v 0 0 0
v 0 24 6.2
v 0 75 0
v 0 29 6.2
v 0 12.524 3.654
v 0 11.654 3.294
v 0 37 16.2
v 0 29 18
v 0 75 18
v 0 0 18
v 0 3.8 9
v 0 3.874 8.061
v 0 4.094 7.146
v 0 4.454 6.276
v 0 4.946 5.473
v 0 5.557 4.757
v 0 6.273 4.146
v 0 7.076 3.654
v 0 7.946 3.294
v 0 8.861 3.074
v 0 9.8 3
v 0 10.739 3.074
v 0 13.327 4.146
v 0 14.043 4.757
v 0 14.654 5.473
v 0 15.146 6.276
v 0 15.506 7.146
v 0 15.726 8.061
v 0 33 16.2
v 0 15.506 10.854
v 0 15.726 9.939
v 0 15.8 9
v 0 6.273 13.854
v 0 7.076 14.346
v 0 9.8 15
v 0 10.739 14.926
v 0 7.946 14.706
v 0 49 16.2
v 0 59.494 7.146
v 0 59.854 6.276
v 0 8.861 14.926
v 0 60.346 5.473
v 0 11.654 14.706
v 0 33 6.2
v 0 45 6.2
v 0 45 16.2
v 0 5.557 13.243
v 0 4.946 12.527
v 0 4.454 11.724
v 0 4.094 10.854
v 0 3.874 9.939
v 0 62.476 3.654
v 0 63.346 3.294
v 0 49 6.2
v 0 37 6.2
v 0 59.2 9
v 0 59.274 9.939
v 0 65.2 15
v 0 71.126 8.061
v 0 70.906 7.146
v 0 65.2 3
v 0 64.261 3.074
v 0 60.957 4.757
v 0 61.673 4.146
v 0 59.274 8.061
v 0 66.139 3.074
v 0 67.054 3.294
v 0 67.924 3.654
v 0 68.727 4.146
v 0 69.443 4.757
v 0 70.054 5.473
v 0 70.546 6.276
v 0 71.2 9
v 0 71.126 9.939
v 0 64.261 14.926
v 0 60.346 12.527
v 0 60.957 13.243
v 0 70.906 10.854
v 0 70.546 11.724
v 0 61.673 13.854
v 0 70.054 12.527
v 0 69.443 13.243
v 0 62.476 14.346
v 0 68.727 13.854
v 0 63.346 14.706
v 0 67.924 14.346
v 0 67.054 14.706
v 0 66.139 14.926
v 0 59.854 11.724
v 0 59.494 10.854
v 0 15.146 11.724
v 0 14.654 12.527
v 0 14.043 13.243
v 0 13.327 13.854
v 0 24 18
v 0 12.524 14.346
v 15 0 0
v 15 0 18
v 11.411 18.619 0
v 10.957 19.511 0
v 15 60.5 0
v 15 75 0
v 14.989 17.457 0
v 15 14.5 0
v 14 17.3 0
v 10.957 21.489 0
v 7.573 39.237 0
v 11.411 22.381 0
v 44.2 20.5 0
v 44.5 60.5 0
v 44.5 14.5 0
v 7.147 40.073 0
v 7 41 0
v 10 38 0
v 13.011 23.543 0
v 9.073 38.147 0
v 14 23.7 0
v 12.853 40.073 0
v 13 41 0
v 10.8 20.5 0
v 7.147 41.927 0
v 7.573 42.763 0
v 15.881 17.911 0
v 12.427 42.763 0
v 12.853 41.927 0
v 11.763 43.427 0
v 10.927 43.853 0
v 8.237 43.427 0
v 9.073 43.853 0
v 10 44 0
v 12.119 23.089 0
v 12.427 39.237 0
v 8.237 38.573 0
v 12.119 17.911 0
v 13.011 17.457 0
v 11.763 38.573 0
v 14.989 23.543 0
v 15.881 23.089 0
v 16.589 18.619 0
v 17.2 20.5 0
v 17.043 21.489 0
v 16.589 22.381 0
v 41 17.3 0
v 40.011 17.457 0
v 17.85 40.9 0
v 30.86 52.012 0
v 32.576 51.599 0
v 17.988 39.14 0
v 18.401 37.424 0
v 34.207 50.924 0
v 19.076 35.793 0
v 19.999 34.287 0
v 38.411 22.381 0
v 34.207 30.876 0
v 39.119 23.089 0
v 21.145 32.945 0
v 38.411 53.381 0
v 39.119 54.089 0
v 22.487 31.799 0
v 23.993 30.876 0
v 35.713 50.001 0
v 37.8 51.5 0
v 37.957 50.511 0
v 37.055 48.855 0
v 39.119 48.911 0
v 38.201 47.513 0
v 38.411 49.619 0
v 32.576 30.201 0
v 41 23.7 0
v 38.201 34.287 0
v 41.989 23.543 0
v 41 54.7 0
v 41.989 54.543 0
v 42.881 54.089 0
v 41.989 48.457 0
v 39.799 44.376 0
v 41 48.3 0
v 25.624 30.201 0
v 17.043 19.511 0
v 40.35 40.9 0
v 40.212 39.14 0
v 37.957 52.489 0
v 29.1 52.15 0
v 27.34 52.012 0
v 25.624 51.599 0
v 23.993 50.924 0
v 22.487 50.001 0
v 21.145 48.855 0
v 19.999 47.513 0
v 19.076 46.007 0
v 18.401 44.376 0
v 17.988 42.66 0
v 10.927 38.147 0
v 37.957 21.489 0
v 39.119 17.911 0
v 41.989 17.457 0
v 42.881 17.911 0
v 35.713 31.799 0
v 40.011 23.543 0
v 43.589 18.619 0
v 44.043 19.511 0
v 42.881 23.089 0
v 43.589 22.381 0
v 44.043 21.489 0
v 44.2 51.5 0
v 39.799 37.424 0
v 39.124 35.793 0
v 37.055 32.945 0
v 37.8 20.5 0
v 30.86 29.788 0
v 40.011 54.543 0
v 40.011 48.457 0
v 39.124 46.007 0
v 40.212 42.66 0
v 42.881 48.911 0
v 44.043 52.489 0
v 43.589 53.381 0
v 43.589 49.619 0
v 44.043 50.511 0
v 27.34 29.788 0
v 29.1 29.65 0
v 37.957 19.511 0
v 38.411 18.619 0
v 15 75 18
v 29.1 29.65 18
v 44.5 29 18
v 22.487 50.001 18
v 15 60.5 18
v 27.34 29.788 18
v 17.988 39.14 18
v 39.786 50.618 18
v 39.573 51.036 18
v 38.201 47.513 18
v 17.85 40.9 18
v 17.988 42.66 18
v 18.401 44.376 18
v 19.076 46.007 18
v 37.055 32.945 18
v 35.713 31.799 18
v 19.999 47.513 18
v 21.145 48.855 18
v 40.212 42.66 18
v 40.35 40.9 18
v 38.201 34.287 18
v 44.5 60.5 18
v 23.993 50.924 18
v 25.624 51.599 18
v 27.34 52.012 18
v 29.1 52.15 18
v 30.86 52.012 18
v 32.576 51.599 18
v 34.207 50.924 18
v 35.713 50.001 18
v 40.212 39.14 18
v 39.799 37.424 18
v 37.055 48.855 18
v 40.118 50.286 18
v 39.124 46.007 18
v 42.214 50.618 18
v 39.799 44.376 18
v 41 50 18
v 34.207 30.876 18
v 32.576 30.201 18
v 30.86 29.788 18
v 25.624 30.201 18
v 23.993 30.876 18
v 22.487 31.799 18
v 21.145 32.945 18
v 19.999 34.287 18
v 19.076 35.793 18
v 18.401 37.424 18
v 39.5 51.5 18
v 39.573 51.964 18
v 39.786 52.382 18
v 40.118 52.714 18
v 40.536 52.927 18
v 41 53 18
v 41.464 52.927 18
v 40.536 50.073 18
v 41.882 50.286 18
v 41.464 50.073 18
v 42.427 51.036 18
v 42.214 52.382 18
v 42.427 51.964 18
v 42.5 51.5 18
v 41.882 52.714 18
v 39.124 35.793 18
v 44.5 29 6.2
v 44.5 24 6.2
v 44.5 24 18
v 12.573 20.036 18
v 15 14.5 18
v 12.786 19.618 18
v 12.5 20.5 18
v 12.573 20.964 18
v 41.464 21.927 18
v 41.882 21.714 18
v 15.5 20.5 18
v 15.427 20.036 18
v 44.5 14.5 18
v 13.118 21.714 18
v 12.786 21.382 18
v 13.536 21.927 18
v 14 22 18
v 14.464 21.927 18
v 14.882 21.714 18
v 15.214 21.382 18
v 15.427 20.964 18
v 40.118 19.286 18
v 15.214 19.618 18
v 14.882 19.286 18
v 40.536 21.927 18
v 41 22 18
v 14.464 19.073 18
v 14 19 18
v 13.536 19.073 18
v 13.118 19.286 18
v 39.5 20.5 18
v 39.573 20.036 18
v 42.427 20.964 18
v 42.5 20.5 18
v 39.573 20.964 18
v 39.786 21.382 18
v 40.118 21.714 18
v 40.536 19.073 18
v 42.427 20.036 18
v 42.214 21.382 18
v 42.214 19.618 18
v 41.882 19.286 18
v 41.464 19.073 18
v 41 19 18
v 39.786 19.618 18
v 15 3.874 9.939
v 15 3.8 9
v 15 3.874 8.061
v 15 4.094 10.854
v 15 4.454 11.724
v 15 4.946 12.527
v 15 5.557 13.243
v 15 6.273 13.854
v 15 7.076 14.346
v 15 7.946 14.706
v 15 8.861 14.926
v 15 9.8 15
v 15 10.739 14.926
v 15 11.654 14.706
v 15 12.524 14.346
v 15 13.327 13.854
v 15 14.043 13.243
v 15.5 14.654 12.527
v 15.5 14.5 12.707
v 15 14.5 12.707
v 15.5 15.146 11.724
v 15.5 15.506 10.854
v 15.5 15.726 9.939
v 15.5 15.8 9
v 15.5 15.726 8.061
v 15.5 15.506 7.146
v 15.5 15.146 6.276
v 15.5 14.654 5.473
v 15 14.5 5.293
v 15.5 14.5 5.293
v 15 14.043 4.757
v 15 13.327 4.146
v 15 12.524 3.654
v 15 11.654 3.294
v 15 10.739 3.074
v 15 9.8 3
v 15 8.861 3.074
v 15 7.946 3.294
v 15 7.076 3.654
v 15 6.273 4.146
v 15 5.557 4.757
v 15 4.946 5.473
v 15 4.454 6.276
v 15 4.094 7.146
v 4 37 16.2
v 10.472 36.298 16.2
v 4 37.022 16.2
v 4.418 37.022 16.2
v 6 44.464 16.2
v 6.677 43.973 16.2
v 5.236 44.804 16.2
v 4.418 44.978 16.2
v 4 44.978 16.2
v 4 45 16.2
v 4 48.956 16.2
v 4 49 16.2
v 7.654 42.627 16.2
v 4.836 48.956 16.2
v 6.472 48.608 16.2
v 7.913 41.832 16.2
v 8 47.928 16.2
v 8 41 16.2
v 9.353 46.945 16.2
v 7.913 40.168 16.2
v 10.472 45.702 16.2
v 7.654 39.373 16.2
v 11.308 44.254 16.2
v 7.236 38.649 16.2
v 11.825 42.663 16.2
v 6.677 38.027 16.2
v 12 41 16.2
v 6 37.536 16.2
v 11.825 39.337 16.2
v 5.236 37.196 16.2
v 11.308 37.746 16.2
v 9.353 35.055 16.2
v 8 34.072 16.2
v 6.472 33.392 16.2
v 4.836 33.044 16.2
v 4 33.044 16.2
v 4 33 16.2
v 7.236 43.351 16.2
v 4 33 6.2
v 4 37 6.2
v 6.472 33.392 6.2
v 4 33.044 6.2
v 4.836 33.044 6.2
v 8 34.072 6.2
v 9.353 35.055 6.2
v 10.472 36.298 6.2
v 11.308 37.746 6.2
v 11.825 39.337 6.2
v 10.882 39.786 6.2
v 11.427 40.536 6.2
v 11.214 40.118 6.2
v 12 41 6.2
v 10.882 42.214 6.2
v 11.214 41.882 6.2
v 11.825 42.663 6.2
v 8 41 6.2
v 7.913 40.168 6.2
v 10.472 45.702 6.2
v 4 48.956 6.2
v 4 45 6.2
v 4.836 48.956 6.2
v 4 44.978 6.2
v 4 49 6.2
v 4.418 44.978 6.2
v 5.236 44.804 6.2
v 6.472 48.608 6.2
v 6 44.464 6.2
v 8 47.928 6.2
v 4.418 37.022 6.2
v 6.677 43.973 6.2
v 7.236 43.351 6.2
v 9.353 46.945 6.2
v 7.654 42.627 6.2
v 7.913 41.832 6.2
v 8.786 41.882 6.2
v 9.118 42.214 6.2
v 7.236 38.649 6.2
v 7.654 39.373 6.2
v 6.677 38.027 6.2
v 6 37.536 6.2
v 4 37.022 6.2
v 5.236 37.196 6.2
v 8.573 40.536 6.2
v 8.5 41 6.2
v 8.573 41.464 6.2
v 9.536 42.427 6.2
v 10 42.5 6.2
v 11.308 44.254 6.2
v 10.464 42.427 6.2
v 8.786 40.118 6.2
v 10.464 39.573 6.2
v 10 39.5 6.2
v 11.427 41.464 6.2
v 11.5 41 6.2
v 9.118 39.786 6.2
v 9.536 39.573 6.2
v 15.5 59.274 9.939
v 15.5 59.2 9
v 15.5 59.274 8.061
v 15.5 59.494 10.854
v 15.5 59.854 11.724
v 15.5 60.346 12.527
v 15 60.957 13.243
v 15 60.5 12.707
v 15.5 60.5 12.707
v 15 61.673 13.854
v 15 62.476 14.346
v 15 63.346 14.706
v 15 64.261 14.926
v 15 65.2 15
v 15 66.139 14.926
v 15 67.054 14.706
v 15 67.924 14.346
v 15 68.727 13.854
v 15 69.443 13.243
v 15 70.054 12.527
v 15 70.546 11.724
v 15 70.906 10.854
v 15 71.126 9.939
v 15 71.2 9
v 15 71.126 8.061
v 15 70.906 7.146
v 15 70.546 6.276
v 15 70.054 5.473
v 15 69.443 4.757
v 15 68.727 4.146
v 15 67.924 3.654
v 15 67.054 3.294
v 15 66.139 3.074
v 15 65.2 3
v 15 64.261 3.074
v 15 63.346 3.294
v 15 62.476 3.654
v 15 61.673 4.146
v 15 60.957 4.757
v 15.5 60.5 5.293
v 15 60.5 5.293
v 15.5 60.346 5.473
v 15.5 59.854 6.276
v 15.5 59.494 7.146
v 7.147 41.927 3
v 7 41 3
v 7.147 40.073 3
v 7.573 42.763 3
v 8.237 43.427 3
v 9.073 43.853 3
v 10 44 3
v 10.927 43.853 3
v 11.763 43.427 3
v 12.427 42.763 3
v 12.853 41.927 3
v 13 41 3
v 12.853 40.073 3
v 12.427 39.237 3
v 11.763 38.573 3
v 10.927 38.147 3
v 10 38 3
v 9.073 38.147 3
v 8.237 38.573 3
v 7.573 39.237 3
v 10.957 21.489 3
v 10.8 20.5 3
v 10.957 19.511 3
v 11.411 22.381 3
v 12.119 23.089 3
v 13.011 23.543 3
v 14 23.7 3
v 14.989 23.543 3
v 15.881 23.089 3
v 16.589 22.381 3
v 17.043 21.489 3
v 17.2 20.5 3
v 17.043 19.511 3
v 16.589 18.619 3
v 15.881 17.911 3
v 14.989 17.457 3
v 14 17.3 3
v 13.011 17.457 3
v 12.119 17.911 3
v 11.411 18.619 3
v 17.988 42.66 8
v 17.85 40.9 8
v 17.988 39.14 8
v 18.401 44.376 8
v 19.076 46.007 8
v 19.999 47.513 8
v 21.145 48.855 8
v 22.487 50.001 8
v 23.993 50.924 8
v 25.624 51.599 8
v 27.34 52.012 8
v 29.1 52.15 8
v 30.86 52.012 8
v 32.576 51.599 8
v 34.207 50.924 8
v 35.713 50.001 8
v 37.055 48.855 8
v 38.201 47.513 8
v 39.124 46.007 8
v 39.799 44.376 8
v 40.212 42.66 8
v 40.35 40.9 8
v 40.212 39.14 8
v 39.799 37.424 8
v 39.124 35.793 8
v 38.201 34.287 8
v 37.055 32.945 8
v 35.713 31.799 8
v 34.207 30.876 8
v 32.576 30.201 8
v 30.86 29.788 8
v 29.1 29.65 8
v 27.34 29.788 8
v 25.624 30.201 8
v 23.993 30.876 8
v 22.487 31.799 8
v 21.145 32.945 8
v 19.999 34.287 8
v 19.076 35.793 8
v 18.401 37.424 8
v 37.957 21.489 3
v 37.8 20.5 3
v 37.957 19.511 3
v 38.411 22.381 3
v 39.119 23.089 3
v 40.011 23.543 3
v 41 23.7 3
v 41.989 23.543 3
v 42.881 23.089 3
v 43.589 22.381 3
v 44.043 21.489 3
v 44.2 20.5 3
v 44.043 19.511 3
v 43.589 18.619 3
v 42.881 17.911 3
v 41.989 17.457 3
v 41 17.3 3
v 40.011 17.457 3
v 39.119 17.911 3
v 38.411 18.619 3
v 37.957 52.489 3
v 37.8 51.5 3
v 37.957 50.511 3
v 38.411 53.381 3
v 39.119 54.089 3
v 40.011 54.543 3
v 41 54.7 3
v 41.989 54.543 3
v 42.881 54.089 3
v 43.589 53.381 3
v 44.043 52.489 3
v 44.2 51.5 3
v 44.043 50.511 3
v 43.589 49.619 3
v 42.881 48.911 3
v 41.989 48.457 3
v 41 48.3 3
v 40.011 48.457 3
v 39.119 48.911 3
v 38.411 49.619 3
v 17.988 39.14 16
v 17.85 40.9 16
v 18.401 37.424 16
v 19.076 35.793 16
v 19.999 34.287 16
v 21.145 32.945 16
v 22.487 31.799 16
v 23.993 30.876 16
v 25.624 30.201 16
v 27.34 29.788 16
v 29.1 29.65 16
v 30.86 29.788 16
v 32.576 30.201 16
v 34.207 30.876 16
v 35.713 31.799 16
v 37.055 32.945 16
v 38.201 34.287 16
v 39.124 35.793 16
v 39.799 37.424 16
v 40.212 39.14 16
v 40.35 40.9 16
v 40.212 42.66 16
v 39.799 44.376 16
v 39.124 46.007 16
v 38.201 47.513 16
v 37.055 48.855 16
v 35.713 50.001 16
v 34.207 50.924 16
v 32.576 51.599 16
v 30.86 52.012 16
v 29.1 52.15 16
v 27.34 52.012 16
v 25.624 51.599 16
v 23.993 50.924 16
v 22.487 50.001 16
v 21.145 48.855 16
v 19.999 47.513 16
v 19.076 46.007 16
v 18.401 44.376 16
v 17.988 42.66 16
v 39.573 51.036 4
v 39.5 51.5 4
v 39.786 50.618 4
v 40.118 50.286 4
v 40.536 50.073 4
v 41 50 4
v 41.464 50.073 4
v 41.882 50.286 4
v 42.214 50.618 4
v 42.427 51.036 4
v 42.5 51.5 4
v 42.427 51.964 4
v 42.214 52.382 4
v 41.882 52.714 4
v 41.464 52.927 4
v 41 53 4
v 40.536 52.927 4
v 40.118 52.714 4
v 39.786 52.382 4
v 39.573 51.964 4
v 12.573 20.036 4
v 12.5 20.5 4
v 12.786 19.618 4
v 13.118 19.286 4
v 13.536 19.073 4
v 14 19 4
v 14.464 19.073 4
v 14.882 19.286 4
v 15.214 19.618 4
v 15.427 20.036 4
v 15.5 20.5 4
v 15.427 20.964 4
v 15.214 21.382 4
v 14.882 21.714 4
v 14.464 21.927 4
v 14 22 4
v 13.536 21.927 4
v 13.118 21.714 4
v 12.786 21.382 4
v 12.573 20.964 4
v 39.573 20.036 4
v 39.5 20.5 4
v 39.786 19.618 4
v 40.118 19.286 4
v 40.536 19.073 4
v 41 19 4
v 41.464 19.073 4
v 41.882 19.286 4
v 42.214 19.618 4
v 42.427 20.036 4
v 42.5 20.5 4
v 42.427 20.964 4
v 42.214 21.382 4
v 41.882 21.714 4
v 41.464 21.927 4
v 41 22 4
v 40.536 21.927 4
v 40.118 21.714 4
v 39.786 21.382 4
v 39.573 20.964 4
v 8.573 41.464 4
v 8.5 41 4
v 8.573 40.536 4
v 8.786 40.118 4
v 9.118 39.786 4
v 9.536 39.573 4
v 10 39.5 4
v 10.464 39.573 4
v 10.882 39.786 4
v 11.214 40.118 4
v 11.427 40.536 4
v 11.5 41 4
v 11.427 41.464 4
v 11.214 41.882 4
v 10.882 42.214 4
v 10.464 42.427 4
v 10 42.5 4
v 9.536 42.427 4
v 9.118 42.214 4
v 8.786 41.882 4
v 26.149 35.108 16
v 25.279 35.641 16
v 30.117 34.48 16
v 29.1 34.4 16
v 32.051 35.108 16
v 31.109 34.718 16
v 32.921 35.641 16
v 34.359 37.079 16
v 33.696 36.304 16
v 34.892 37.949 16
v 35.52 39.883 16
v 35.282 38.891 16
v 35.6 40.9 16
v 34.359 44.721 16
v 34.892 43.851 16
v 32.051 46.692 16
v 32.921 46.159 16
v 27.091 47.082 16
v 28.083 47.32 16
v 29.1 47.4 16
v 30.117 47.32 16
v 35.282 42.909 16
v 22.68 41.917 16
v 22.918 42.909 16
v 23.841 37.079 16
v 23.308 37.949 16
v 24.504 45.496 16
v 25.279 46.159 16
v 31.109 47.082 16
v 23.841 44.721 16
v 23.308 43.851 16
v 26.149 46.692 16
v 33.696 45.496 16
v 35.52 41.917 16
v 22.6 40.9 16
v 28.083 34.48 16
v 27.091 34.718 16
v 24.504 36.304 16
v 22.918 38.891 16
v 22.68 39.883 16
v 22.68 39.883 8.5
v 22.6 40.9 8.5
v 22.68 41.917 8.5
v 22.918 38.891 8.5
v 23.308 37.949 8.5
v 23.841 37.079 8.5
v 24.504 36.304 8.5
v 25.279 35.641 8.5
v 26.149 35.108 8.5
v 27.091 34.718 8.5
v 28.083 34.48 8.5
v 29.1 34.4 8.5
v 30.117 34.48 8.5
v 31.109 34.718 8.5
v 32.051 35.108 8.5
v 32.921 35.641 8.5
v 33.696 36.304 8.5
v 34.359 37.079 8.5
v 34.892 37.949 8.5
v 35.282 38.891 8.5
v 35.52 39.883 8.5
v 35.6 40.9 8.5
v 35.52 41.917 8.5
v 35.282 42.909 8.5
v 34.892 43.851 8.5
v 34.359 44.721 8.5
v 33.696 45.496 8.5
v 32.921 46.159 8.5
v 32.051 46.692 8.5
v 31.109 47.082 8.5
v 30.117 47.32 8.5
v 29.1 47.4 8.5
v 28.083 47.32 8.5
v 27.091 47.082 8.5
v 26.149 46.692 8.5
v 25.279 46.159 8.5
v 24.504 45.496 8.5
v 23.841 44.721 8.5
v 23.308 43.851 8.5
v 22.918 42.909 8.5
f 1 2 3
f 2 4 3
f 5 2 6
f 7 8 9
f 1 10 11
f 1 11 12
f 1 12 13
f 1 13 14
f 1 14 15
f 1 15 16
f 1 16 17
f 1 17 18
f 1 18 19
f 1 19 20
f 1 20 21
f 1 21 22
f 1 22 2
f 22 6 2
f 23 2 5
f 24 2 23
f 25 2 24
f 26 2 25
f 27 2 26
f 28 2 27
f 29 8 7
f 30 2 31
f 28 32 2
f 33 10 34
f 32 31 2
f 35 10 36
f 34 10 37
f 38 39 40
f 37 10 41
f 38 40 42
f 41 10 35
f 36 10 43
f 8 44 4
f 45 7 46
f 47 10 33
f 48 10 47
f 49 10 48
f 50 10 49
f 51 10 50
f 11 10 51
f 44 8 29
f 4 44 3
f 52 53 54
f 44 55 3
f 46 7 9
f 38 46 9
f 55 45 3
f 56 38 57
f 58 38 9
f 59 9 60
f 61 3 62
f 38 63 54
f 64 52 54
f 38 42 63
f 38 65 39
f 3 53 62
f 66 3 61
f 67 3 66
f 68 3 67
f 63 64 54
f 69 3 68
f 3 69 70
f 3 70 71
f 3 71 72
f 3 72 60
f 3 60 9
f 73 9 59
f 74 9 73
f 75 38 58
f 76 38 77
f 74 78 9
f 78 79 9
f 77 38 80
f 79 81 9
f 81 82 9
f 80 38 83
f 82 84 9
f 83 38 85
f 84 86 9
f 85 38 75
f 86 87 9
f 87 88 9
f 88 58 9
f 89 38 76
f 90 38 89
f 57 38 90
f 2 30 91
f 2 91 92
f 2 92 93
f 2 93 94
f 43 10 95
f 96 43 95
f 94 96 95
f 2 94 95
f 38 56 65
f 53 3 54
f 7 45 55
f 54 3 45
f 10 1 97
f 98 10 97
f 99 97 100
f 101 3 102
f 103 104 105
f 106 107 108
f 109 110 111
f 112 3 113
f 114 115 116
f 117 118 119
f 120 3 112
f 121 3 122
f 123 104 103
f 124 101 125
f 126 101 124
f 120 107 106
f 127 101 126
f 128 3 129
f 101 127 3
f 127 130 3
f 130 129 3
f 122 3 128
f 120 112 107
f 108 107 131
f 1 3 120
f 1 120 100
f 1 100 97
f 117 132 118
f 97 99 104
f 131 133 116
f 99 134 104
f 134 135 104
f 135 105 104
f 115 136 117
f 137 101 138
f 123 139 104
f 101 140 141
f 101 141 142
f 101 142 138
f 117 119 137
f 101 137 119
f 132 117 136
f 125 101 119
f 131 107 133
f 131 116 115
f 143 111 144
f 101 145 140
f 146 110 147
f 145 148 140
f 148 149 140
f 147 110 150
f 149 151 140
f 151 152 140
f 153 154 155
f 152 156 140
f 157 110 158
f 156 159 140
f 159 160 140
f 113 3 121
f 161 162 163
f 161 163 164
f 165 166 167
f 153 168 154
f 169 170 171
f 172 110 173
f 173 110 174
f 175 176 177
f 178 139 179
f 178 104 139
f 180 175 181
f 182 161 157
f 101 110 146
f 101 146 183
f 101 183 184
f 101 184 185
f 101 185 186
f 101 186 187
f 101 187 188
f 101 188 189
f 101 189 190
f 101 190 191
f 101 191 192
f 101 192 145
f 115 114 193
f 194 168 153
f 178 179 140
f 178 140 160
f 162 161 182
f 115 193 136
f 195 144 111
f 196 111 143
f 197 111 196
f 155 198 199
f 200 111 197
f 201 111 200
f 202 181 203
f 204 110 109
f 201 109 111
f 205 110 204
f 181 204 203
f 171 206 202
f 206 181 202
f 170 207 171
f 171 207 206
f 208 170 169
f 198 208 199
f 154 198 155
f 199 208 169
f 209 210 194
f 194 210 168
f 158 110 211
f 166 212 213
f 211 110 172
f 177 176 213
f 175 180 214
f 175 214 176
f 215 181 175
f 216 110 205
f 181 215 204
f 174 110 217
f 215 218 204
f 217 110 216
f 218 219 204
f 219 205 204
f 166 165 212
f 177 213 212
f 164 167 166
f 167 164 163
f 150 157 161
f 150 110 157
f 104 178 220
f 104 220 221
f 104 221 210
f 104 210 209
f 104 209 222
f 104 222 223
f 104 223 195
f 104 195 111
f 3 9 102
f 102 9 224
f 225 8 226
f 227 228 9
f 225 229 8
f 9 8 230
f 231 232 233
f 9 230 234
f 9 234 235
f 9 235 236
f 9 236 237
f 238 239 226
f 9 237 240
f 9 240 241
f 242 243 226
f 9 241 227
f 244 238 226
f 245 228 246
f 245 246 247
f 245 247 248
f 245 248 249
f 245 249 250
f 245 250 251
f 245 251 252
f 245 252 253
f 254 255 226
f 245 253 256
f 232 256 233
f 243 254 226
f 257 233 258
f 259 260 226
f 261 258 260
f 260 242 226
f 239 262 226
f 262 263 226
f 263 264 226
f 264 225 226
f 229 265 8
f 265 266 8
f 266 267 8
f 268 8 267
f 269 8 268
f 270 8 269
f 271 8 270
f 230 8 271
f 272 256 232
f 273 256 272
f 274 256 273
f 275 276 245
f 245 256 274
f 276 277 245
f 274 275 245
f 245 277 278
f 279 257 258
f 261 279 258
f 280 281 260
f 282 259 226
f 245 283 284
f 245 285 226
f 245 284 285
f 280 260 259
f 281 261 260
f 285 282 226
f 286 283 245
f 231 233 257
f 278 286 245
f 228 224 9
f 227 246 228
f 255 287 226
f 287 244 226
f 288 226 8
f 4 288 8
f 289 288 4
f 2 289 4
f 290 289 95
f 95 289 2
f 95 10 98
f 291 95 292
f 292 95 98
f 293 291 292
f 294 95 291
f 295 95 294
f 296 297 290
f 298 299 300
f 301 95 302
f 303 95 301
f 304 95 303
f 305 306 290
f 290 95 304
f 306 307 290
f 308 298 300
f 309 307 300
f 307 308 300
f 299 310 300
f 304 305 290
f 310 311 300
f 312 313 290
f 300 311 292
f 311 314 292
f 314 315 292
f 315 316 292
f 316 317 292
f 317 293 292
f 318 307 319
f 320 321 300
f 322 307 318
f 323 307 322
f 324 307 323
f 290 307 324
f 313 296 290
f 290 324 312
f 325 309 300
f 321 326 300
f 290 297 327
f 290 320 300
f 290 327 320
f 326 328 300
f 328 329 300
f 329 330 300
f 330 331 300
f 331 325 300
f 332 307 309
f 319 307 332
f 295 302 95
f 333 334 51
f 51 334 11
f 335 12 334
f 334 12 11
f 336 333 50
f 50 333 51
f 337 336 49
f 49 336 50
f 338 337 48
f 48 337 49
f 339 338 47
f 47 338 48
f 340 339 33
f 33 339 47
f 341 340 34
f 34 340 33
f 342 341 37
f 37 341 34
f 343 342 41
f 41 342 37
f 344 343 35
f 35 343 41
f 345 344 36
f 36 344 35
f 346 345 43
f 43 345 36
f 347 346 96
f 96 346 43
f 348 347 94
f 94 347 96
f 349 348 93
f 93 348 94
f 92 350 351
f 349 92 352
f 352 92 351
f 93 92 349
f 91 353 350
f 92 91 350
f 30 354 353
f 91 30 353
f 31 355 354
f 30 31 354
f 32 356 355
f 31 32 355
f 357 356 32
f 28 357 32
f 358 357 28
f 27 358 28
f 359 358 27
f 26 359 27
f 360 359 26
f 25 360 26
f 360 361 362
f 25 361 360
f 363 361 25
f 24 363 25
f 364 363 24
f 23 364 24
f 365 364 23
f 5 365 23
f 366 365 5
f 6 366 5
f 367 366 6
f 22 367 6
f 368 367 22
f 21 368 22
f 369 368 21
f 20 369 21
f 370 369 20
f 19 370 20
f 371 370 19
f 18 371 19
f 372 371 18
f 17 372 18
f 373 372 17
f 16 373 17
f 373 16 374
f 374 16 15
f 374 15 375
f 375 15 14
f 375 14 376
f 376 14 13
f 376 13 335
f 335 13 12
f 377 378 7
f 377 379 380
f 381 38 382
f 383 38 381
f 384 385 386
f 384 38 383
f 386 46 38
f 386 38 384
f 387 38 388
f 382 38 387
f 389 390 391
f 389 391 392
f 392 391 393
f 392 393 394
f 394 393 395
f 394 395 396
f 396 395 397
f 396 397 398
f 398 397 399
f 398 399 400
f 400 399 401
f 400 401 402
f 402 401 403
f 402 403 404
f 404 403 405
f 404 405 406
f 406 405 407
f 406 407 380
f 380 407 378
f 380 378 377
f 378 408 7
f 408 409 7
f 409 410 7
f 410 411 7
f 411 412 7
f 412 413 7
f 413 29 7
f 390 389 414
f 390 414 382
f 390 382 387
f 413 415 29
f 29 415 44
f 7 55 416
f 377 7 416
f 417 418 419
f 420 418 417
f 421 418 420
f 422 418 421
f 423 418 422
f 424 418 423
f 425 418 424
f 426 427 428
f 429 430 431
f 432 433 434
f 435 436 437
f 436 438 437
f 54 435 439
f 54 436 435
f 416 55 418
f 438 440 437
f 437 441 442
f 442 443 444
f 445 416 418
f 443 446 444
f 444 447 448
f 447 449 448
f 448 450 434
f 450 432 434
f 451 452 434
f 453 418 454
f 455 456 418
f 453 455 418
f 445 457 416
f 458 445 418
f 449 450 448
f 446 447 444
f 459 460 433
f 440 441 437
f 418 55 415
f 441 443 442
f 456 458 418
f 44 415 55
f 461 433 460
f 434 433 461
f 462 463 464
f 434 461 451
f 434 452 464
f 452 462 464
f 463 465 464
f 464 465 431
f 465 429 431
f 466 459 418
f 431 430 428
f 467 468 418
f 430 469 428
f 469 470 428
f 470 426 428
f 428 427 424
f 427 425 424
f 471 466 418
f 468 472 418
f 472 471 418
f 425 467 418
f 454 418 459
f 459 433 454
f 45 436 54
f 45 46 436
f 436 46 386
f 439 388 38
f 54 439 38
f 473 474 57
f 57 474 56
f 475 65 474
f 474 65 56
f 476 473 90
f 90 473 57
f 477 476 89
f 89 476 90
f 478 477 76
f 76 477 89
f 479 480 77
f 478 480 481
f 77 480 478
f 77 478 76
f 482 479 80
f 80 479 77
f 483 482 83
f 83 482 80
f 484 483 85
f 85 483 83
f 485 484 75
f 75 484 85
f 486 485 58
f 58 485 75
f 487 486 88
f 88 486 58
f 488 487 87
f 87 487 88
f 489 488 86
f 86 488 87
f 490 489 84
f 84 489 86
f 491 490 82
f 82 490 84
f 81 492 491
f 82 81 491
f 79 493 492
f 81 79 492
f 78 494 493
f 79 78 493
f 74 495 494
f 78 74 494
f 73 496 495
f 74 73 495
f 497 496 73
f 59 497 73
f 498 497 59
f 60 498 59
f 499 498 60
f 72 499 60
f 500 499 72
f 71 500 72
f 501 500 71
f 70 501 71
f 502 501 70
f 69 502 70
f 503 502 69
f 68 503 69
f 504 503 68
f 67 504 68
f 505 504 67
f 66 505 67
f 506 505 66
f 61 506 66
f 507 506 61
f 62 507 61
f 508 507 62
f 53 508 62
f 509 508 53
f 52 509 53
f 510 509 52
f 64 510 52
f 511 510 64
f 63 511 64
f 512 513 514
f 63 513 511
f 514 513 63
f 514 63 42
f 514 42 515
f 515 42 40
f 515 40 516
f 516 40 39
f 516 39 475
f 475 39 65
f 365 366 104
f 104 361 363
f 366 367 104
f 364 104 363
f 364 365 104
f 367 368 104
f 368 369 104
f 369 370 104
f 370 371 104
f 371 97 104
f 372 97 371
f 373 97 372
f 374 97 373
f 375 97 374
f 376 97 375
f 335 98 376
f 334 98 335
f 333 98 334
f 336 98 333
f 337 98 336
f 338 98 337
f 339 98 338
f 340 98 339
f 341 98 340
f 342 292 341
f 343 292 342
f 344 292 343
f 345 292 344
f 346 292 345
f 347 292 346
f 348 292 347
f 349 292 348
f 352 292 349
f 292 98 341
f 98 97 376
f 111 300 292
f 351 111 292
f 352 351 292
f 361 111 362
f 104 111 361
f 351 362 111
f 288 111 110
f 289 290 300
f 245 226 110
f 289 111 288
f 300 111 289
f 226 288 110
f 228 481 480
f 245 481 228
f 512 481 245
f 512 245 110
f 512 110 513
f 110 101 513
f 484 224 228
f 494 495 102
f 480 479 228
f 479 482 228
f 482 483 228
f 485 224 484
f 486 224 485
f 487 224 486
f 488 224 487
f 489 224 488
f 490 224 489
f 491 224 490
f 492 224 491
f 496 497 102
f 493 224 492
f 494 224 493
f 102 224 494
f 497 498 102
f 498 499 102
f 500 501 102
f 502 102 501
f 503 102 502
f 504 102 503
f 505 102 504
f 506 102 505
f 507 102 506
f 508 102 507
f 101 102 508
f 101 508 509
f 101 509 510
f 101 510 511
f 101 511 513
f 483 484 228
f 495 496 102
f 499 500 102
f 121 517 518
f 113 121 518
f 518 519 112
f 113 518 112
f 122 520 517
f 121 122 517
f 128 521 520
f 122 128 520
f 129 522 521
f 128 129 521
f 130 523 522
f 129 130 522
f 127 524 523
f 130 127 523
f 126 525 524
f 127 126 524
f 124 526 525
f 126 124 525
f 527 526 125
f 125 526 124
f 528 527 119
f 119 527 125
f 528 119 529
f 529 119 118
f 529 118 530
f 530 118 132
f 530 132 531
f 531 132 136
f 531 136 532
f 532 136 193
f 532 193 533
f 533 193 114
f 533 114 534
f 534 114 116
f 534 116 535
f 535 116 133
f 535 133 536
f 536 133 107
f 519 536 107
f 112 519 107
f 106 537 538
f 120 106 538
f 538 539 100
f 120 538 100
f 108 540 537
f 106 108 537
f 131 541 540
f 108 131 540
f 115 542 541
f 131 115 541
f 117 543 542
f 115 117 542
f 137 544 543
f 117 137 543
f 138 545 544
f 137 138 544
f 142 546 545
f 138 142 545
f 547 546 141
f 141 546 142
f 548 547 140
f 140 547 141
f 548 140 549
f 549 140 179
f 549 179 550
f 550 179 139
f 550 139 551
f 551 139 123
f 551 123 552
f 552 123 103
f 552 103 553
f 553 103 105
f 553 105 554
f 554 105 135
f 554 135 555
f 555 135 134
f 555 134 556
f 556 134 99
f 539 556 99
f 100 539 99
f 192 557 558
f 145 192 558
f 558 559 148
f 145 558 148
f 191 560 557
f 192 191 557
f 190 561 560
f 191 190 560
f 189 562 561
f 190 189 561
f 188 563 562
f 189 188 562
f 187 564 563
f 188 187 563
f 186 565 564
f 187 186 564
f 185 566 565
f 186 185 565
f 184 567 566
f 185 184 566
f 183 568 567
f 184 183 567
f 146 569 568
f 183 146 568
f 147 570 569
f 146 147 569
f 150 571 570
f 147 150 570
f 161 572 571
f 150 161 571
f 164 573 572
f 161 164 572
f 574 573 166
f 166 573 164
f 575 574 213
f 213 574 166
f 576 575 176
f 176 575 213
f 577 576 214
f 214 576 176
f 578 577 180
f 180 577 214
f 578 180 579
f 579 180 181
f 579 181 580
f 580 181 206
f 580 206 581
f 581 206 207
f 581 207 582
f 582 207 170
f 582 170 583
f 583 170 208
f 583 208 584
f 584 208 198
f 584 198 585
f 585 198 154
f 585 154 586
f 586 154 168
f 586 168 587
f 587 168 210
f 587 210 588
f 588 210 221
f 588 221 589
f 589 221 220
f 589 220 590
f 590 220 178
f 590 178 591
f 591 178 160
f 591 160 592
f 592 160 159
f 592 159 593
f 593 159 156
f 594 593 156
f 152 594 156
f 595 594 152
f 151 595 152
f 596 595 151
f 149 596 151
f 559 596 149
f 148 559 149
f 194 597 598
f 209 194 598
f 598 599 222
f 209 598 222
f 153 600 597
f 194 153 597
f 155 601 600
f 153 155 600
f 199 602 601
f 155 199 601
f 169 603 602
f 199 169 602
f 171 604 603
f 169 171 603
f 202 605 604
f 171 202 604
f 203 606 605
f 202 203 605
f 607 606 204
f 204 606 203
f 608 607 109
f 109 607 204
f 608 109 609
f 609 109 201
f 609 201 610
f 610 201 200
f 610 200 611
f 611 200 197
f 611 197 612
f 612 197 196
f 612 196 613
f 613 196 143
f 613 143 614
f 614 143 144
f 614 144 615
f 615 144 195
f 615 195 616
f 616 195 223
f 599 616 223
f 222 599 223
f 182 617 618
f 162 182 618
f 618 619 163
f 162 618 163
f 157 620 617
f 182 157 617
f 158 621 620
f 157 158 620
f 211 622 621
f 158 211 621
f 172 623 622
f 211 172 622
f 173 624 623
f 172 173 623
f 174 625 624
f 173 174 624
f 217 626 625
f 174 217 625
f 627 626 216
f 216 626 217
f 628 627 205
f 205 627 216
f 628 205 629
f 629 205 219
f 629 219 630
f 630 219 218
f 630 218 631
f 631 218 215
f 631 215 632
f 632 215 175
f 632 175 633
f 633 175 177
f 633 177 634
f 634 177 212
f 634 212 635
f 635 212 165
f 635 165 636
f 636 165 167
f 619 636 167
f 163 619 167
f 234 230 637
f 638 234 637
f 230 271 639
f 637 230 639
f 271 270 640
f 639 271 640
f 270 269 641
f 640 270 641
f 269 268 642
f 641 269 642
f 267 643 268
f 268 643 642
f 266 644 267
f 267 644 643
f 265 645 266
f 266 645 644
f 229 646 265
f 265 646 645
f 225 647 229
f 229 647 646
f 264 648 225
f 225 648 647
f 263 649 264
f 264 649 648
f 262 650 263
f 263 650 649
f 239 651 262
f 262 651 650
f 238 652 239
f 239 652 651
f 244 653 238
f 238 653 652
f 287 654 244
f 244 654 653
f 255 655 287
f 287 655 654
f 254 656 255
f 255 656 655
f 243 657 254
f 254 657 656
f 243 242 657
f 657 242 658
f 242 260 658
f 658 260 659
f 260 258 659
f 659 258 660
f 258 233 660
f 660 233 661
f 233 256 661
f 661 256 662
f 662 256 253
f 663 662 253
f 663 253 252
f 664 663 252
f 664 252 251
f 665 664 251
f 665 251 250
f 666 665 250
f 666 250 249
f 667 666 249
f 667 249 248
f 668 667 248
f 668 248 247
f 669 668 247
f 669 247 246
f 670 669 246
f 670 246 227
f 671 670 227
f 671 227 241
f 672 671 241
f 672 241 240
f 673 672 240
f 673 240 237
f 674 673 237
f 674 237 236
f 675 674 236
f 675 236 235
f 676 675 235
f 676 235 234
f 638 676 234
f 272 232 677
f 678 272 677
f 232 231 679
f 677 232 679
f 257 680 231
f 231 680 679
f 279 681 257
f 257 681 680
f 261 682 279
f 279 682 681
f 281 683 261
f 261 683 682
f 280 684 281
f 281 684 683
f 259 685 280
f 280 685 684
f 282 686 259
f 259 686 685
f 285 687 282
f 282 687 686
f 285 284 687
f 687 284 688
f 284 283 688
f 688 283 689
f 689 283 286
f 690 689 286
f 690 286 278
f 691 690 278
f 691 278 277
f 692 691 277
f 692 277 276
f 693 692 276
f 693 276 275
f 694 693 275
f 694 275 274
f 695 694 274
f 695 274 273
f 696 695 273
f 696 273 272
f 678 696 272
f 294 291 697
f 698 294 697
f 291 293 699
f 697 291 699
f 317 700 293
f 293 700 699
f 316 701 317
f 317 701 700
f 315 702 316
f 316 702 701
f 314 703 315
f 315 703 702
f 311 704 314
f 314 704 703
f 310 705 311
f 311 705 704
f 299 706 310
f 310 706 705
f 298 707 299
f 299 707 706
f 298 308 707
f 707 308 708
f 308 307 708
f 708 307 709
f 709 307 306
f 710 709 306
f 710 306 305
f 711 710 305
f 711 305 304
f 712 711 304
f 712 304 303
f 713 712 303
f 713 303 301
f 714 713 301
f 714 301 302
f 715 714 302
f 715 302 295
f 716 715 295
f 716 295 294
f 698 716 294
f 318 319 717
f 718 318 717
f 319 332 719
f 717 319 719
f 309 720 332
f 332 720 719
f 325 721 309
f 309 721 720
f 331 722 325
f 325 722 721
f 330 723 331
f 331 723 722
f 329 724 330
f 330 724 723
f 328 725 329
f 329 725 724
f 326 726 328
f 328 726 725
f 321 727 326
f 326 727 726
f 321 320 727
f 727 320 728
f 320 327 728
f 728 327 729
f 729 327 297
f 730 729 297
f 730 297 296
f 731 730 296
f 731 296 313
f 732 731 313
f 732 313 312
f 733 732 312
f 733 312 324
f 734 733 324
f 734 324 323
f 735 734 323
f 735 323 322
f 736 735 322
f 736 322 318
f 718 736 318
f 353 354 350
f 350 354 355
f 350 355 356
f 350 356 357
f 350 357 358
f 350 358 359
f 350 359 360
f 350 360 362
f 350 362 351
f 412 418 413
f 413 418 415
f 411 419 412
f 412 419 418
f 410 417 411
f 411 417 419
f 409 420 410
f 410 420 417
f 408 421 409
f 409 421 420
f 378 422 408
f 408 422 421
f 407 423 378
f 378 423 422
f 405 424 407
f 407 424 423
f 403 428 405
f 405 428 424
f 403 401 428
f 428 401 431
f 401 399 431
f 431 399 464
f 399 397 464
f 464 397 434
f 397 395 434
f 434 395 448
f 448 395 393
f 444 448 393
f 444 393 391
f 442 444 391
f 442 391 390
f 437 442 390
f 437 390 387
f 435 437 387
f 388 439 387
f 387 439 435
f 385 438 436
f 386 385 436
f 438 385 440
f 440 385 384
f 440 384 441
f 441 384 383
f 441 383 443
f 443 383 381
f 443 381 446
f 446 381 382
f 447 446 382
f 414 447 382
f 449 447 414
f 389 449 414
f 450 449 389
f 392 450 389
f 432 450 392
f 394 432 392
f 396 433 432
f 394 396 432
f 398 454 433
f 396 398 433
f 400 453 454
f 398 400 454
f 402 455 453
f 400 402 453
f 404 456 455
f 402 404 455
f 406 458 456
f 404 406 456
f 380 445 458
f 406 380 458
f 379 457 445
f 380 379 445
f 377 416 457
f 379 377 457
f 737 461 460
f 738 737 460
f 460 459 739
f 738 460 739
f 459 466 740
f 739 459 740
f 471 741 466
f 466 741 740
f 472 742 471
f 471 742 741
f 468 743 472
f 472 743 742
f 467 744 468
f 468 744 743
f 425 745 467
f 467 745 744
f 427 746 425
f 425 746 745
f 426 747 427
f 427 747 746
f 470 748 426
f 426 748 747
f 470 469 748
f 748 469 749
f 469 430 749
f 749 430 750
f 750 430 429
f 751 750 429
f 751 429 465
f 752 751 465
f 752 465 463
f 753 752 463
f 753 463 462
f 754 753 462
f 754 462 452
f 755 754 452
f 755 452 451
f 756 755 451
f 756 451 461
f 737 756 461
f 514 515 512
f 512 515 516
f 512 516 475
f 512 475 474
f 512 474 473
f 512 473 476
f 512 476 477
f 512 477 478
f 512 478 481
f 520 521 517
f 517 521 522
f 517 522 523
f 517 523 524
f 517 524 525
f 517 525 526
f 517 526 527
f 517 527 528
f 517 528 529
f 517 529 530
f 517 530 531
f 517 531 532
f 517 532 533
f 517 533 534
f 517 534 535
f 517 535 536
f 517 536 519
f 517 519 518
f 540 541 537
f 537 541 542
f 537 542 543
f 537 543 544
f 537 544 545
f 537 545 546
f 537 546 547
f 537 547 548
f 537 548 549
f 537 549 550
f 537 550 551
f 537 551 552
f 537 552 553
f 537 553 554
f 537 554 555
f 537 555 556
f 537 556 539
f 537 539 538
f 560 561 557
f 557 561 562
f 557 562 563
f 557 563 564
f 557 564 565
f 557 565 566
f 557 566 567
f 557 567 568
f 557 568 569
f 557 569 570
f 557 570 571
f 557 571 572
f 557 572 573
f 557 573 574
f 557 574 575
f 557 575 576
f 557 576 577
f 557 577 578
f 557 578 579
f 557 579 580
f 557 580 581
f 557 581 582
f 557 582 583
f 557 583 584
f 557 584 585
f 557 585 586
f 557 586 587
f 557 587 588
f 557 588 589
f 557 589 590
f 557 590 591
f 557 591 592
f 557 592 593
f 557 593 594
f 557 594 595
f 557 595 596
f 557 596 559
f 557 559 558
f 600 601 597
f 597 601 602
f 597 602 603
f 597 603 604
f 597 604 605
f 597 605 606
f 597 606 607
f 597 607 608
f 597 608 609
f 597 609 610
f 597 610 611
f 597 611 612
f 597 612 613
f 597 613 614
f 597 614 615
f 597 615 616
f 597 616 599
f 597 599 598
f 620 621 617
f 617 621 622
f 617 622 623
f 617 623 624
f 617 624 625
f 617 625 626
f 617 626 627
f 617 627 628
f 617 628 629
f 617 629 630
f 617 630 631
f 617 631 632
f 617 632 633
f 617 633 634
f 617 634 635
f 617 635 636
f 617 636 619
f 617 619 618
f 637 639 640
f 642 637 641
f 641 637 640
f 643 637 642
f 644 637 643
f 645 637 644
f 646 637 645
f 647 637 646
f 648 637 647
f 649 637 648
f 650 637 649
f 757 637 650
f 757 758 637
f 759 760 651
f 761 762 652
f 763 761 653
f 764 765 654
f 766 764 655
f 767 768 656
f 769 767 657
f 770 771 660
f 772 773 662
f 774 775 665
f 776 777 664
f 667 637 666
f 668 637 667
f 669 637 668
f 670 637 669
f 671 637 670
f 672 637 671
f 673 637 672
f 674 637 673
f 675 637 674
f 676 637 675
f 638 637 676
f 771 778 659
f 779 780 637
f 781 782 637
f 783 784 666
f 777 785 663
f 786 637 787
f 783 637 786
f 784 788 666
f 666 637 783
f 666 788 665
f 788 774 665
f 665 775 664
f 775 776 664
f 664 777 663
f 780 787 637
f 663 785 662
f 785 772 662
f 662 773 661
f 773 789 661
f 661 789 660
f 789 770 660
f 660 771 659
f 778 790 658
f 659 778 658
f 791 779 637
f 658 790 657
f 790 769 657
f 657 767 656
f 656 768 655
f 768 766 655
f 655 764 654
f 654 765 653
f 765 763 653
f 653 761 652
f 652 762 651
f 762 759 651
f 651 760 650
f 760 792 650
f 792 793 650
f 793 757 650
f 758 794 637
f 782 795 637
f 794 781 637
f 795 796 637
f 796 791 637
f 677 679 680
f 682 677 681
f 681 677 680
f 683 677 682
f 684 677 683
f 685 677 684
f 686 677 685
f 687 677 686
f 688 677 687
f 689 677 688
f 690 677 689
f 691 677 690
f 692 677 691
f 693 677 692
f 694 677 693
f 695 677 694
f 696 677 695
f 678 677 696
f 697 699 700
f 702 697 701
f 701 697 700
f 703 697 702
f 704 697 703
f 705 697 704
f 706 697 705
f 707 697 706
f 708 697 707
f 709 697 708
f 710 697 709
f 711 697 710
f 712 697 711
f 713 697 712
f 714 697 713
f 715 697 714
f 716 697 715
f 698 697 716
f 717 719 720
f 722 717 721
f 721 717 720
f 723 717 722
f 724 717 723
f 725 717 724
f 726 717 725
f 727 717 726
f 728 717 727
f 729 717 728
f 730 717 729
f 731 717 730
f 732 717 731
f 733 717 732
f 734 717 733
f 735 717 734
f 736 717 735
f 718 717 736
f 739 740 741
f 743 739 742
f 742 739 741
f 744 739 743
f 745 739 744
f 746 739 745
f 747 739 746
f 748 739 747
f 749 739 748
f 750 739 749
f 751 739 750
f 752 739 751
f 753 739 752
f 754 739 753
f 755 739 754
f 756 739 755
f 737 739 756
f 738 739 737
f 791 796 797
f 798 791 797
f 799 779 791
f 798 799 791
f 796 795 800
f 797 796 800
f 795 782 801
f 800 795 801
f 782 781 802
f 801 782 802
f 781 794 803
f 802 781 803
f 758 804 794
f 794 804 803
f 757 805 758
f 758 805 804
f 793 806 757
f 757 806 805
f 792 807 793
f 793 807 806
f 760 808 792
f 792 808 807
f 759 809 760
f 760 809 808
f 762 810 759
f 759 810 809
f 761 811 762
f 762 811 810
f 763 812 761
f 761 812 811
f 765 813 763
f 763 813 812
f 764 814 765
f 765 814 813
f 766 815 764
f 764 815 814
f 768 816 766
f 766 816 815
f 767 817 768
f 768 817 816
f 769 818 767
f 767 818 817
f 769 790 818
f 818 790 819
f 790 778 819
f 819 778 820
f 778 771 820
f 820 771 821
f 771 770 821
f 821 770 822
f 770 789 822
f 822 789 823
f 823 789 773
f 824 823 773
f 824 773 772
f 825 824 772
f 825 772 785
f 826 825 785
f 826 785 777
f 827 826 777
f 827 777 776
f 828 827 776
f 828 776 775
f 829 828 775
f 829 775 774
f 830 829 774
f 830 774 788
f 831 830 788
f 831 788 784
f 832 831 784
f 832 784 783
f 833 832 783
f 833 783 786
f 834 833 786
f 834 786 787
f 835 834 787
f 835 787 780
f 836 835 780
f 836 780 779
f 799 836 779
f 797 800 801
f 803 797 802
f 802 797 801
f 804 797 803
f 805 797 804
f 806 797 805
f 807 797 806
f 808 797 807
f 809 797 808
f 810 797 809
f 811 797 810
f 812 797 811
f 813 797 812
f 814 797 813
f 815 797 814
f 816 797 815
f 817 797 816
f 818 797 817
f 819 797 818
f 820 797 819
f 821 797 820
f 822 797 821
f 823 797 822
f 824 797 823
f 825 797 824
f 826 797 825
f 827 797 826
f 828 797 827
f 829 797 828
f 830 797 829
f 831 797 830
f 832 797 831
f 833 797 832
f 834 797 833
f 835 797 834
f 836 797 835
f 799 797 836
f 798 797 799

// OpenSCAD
x=90;y=75;z=18;
x1=60;y1=15.5;
y2=9.8;
x3=25;y3=23;
d1=12;
d2=3;
x4=(x-x1)/2;
dz=31;
x5=15;
y5=22;
x6=x5+28+9;
d3=14;
d4=22.5;

v=10;
d5=16;
d6=8;
dz2=6;

module bolt() {
	translate([0,0,-1])cylinder(4,r=3.2,$fn=20);
	translate([0,0,4])cylinder(z-2,r=d2/2,$fn=20);
}
module belt() {
	difference() {
		translate([1,0,z-11.8])
		union() {
			cylinder(v,r=d5/2,$fn=30);
			translate([-d5/2,-d5/2,0]) cube([d5/2,d5,v]);
		}
		translate([1,0,z-11.8])
		union() {
			cylinder(v,r=d6/2,$fn=30);
			translate([-d6/2,-d6/2,0]) cube([d6/2,d6,v]);
		}
	}
	//translate([-1,0,z-7]) rotate([0,90,0]) cylinder(d6,r=d2/2,$fn=20);
	translate([7,0,0]){
		translate([0,0,-1])cylinder(4,r=3,$fn=20);
		translate([0,0,4])cylinder(z-6,r=d2/2,$fn=20);
	}
}
intersection () {                           
translate([-2,-2,-2])cube ([46.5,100,50]) ;
difference() {
	cube([x,y,z]);
	translate([(x-x1)/2,-1,-1]) cube([x1,y1,z+2]);
	translate([(x-x1)/2,y-y1+1,-1]) cube([x1,y1,z+2]);
	translate([x6-dz2,y5-dz2,z-4]) cube([2*dz2+dz+2,2*dz2+dz,5]);

	// направляющие
	translate([-0.5,y2,z/2]) rotate([0,90,0]) cylinder(x4+1,r=d1/2,$fn=40);
	translate([x-x4-0.5,y2,z/2]) rotate([0,90,0]) cylinder(x4+1,r=d1/2,$fn=40);
	translate([-0.5,y-y2,z/2]) rotate([0,90,0]) cylinder(x4+1,r=d1/2,$fn=40);
	translate([x-x4-0.5,y-y2,z/2]) rotate([0,90,0]) cylinder(x4+1,r=d1/2,$fn=40);

	// квадратные отверстия
	//translate([x-x3-12.1,26.3,-1]) cube([x3,y3,z+2]);
	//translate([x-x3-48,26.3,-1]) cube([x3,y3,z+2]);
	
	// болты
	translate([x5-1,y5-1.5,0]) bolt();
	//translate([x5-1,y5+dz-1.5,0]) bolt();
	translate([x5+26,y5-1.5,0]) bolt();
	translate([x5+26,y5+dz-1.5,0]) bolt();

	translate([x6,y5,0]) bolt();
	translate([x6,y5+dz,0]) bolt();
	translate([x6+dz,y5,0]) bolt();
	translate([x6+dz,y5+dz,0]) bolt();

	// пазы
	//translate([x-61.25,44.38,-1]) cylinder(z+2,r=d3/2,$fn=40);
	// круглые отверстия
	translate([x-60.9,40.9,-1]) cylinder(9,r=d4/2,$fn=40);
	translate([x-60.9,40.9,8.5]) cylinder(10,r=13/2,$fn=40);
	translate([x-60.9,40.9,z-2]) cylinder(9,r=d4/2,$fn=40);
	// мотор
	translate([x6+dz/2,y5+dz/2,-1]) cylinder(z+2,r=d4/2,$fn=40);
	translate([x6+dz/2-d4/2,y5+dz/2-d4/2,z-11.8]) cube([d4,d4/2,z+2]);
	// продольный паз для ремня
	translate([-1,24,z-11.8]) cube([x+2,5,12]);

	// для ремней
	translate([3,41,0]) belt();
	translate([x,41,0]) mirror([1,0,0]) belt();
}
}
	//translate([3,0,0]) belt();
// расчет такого y2, чтобы расстояние между осями было верным
echo((y-(47.3+63.2)/2)/2);
// расчет крепления мотора
echo("x=",x6+dz/2);
echo("y=",y5+dz/2);

// втулка
/*color([1,0.5,0.3])
translate([-0.1,y2,z/2])
rotate([0,90,0])
difference() {
	cylinder(10.3,r=11.5/2);
	translate([0,0,-0.1])cylinder(10.5,r=7.9/2);
}

	translate([26.25,5.2,3.8]) %cube([18,11.7,10.5]);
translate([26.25+11.5/2,5.25+11.5/2,4])
difference() {
	cylinder(10.3,r=11.5/2);
	translate([0,0,-0.1])cylinder(10.5,r=7.9/2);
	

}
}
*/
